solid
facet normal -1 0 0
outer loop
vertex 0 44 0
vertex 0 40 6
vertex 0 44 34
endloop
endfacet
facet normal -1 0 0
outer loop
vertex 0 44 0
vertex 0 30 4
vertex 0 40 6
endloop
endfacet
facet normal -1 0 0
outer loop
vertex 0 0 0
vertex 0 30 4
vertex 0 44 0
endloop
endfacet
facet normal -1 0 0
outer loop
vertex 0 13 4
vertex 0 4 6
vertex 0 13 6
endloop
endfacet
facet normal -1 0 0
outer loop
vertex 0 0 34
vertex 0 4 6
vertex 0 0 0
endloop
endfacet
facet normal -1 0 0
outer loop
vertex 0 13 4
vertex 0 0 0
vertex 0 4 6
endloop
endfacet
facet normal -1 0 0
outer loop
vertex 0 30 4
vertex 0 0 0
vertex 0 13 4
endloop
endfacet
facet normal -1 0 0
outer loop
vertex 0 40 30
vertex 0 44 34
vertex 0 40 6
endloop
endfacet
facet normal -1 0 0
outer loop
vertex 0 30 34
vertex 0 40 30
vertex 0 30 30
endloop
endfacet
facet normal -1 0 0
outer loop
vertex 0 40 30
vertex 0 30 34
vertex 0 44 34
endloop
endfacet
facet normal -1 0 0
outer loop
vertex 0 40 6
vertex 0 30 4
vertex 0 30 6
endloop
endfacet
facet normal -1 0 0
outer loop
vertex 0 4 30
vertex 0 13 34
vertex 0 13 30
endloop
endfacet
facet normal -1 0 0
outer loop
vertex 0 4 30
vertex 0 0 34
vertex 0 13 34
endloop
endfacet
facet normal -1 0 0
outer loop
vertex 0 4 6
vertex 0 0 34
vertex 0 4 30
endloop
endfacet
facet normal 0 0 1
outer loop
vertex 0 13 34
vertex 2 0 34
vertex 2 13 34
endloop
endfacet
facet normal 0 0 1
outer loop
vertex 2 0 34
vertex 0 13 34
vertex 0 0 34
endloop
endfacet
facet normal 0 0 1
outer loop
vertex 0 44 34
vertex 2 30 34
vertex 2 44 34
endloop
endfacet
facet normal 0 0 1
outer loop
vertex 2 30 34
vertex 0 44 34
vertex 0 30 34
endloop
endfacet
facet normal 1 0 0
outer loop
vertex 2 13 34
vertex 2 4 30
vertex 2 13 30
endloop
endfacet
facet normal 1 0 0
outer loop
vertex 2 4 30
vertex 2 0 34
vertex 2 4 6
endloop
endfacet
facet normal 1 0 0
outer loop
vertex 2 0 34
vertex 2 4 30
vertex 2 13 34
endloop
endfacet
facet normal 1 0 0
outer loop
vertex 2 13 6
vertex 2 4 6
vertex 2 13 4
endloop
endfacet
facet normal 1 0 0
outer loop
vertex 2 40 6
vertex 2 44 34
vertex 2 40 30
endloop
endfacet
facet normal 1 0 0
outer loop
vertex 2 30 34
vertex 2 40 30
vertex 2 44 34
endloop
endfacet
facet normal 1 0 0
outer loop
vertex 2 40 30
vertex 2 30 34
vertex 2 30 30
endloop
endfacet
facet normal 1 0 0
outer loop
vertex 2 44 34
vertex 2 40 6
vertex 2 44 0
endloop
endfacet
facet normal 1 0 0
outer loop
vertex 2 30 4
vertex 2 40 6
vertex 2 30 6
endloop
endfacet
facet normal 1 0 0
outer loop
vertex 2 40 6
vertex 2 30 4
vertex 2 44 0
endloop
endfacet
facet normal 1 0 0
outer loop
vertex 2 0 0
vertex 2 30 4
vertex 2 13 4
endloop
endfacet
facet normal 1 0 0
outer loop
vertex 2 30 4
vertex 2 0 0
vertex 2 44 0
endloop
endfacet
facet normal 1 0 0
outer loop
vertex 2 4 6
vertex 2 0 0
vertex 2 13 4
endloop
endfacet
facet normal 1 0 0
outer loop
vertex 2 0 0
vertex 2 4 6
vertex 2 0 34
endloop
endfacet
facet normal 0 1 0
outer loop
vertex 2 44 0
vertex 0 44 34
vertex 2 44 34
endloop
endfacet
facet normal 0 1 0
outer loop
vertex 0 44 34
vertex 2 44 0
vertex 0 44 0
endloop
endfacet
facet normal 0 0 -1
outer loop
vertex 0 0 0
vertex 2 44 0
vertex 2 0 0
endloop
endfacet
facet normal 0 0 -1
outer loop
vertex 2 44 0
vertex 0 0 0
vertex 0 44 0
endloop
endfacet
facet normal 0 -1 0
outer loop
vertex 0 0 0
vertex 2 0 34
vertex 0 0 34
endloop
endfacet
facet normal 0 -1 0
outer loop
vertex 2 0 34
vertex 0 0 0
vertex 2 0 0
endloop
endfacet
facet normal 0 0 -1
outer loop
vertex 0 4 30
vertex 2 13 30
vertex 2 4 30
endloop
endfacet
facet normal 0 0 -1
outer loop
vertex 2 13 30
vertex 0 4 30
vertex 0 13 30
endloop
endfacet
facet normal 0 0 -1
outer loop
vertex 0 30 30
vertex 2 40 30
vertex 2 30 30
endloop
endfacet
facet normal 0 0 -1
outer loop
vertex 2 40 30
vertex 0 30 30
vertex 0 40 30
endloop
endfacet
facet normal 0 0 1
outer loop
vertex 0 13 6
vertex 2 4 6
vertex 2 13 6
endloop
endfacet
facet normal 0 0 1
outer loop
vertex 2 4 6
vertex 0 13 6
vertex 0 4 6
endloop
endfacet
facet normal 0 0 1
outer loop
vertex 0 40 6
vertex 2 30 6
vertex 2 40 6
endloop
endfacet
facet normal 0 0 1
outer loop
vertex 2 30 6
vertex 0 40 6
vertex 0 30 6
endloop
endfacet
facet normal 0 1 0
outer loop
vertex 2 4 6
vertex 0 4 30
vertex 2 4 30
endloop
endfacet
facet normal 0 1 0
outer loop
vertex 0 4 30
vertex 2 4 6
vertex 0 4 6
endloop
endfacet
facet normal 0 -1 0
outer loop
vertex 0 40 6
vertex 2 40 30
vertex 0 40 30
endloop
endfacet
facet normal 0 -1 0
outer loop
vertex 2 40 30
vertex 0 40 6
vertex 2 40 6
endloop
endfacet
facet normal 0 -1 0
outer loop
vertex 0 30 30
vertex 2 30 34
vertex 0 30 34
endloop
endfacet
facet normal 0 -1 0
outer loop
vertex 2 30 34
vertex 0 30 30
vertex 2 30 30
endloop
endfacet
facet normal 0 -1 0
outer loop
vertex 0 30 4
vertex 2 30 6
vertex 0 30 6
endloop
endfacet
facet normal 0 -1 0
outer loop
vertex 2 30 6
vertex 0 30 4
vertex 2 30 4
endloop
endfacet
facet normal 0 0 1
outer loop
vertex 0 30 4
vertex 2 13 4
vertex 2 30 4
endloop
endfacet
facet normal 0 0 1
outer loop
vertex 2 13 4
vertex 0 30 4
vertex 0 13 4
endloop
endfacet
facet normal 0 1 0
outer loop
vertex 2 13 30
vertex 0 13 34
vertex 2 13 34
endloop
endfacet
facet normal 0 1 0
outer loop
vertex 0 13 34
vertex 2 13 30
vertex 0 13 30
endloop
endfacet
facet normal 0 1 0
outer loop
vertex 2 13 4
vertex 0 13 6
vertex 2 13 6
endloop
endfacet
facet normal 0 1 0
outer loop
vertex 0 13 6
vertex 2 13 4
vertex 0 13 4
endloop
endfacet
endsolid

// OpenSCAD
//OLED 1.3 Diplay Spacer für Cloudya


difference(){
cube([2,44,34]); //innen

translate([-0.1,4,6])
cube([3,36,24]); //innen
    
translate([-0.1,13,4])
cube([3,17,50]); //innen      
}
